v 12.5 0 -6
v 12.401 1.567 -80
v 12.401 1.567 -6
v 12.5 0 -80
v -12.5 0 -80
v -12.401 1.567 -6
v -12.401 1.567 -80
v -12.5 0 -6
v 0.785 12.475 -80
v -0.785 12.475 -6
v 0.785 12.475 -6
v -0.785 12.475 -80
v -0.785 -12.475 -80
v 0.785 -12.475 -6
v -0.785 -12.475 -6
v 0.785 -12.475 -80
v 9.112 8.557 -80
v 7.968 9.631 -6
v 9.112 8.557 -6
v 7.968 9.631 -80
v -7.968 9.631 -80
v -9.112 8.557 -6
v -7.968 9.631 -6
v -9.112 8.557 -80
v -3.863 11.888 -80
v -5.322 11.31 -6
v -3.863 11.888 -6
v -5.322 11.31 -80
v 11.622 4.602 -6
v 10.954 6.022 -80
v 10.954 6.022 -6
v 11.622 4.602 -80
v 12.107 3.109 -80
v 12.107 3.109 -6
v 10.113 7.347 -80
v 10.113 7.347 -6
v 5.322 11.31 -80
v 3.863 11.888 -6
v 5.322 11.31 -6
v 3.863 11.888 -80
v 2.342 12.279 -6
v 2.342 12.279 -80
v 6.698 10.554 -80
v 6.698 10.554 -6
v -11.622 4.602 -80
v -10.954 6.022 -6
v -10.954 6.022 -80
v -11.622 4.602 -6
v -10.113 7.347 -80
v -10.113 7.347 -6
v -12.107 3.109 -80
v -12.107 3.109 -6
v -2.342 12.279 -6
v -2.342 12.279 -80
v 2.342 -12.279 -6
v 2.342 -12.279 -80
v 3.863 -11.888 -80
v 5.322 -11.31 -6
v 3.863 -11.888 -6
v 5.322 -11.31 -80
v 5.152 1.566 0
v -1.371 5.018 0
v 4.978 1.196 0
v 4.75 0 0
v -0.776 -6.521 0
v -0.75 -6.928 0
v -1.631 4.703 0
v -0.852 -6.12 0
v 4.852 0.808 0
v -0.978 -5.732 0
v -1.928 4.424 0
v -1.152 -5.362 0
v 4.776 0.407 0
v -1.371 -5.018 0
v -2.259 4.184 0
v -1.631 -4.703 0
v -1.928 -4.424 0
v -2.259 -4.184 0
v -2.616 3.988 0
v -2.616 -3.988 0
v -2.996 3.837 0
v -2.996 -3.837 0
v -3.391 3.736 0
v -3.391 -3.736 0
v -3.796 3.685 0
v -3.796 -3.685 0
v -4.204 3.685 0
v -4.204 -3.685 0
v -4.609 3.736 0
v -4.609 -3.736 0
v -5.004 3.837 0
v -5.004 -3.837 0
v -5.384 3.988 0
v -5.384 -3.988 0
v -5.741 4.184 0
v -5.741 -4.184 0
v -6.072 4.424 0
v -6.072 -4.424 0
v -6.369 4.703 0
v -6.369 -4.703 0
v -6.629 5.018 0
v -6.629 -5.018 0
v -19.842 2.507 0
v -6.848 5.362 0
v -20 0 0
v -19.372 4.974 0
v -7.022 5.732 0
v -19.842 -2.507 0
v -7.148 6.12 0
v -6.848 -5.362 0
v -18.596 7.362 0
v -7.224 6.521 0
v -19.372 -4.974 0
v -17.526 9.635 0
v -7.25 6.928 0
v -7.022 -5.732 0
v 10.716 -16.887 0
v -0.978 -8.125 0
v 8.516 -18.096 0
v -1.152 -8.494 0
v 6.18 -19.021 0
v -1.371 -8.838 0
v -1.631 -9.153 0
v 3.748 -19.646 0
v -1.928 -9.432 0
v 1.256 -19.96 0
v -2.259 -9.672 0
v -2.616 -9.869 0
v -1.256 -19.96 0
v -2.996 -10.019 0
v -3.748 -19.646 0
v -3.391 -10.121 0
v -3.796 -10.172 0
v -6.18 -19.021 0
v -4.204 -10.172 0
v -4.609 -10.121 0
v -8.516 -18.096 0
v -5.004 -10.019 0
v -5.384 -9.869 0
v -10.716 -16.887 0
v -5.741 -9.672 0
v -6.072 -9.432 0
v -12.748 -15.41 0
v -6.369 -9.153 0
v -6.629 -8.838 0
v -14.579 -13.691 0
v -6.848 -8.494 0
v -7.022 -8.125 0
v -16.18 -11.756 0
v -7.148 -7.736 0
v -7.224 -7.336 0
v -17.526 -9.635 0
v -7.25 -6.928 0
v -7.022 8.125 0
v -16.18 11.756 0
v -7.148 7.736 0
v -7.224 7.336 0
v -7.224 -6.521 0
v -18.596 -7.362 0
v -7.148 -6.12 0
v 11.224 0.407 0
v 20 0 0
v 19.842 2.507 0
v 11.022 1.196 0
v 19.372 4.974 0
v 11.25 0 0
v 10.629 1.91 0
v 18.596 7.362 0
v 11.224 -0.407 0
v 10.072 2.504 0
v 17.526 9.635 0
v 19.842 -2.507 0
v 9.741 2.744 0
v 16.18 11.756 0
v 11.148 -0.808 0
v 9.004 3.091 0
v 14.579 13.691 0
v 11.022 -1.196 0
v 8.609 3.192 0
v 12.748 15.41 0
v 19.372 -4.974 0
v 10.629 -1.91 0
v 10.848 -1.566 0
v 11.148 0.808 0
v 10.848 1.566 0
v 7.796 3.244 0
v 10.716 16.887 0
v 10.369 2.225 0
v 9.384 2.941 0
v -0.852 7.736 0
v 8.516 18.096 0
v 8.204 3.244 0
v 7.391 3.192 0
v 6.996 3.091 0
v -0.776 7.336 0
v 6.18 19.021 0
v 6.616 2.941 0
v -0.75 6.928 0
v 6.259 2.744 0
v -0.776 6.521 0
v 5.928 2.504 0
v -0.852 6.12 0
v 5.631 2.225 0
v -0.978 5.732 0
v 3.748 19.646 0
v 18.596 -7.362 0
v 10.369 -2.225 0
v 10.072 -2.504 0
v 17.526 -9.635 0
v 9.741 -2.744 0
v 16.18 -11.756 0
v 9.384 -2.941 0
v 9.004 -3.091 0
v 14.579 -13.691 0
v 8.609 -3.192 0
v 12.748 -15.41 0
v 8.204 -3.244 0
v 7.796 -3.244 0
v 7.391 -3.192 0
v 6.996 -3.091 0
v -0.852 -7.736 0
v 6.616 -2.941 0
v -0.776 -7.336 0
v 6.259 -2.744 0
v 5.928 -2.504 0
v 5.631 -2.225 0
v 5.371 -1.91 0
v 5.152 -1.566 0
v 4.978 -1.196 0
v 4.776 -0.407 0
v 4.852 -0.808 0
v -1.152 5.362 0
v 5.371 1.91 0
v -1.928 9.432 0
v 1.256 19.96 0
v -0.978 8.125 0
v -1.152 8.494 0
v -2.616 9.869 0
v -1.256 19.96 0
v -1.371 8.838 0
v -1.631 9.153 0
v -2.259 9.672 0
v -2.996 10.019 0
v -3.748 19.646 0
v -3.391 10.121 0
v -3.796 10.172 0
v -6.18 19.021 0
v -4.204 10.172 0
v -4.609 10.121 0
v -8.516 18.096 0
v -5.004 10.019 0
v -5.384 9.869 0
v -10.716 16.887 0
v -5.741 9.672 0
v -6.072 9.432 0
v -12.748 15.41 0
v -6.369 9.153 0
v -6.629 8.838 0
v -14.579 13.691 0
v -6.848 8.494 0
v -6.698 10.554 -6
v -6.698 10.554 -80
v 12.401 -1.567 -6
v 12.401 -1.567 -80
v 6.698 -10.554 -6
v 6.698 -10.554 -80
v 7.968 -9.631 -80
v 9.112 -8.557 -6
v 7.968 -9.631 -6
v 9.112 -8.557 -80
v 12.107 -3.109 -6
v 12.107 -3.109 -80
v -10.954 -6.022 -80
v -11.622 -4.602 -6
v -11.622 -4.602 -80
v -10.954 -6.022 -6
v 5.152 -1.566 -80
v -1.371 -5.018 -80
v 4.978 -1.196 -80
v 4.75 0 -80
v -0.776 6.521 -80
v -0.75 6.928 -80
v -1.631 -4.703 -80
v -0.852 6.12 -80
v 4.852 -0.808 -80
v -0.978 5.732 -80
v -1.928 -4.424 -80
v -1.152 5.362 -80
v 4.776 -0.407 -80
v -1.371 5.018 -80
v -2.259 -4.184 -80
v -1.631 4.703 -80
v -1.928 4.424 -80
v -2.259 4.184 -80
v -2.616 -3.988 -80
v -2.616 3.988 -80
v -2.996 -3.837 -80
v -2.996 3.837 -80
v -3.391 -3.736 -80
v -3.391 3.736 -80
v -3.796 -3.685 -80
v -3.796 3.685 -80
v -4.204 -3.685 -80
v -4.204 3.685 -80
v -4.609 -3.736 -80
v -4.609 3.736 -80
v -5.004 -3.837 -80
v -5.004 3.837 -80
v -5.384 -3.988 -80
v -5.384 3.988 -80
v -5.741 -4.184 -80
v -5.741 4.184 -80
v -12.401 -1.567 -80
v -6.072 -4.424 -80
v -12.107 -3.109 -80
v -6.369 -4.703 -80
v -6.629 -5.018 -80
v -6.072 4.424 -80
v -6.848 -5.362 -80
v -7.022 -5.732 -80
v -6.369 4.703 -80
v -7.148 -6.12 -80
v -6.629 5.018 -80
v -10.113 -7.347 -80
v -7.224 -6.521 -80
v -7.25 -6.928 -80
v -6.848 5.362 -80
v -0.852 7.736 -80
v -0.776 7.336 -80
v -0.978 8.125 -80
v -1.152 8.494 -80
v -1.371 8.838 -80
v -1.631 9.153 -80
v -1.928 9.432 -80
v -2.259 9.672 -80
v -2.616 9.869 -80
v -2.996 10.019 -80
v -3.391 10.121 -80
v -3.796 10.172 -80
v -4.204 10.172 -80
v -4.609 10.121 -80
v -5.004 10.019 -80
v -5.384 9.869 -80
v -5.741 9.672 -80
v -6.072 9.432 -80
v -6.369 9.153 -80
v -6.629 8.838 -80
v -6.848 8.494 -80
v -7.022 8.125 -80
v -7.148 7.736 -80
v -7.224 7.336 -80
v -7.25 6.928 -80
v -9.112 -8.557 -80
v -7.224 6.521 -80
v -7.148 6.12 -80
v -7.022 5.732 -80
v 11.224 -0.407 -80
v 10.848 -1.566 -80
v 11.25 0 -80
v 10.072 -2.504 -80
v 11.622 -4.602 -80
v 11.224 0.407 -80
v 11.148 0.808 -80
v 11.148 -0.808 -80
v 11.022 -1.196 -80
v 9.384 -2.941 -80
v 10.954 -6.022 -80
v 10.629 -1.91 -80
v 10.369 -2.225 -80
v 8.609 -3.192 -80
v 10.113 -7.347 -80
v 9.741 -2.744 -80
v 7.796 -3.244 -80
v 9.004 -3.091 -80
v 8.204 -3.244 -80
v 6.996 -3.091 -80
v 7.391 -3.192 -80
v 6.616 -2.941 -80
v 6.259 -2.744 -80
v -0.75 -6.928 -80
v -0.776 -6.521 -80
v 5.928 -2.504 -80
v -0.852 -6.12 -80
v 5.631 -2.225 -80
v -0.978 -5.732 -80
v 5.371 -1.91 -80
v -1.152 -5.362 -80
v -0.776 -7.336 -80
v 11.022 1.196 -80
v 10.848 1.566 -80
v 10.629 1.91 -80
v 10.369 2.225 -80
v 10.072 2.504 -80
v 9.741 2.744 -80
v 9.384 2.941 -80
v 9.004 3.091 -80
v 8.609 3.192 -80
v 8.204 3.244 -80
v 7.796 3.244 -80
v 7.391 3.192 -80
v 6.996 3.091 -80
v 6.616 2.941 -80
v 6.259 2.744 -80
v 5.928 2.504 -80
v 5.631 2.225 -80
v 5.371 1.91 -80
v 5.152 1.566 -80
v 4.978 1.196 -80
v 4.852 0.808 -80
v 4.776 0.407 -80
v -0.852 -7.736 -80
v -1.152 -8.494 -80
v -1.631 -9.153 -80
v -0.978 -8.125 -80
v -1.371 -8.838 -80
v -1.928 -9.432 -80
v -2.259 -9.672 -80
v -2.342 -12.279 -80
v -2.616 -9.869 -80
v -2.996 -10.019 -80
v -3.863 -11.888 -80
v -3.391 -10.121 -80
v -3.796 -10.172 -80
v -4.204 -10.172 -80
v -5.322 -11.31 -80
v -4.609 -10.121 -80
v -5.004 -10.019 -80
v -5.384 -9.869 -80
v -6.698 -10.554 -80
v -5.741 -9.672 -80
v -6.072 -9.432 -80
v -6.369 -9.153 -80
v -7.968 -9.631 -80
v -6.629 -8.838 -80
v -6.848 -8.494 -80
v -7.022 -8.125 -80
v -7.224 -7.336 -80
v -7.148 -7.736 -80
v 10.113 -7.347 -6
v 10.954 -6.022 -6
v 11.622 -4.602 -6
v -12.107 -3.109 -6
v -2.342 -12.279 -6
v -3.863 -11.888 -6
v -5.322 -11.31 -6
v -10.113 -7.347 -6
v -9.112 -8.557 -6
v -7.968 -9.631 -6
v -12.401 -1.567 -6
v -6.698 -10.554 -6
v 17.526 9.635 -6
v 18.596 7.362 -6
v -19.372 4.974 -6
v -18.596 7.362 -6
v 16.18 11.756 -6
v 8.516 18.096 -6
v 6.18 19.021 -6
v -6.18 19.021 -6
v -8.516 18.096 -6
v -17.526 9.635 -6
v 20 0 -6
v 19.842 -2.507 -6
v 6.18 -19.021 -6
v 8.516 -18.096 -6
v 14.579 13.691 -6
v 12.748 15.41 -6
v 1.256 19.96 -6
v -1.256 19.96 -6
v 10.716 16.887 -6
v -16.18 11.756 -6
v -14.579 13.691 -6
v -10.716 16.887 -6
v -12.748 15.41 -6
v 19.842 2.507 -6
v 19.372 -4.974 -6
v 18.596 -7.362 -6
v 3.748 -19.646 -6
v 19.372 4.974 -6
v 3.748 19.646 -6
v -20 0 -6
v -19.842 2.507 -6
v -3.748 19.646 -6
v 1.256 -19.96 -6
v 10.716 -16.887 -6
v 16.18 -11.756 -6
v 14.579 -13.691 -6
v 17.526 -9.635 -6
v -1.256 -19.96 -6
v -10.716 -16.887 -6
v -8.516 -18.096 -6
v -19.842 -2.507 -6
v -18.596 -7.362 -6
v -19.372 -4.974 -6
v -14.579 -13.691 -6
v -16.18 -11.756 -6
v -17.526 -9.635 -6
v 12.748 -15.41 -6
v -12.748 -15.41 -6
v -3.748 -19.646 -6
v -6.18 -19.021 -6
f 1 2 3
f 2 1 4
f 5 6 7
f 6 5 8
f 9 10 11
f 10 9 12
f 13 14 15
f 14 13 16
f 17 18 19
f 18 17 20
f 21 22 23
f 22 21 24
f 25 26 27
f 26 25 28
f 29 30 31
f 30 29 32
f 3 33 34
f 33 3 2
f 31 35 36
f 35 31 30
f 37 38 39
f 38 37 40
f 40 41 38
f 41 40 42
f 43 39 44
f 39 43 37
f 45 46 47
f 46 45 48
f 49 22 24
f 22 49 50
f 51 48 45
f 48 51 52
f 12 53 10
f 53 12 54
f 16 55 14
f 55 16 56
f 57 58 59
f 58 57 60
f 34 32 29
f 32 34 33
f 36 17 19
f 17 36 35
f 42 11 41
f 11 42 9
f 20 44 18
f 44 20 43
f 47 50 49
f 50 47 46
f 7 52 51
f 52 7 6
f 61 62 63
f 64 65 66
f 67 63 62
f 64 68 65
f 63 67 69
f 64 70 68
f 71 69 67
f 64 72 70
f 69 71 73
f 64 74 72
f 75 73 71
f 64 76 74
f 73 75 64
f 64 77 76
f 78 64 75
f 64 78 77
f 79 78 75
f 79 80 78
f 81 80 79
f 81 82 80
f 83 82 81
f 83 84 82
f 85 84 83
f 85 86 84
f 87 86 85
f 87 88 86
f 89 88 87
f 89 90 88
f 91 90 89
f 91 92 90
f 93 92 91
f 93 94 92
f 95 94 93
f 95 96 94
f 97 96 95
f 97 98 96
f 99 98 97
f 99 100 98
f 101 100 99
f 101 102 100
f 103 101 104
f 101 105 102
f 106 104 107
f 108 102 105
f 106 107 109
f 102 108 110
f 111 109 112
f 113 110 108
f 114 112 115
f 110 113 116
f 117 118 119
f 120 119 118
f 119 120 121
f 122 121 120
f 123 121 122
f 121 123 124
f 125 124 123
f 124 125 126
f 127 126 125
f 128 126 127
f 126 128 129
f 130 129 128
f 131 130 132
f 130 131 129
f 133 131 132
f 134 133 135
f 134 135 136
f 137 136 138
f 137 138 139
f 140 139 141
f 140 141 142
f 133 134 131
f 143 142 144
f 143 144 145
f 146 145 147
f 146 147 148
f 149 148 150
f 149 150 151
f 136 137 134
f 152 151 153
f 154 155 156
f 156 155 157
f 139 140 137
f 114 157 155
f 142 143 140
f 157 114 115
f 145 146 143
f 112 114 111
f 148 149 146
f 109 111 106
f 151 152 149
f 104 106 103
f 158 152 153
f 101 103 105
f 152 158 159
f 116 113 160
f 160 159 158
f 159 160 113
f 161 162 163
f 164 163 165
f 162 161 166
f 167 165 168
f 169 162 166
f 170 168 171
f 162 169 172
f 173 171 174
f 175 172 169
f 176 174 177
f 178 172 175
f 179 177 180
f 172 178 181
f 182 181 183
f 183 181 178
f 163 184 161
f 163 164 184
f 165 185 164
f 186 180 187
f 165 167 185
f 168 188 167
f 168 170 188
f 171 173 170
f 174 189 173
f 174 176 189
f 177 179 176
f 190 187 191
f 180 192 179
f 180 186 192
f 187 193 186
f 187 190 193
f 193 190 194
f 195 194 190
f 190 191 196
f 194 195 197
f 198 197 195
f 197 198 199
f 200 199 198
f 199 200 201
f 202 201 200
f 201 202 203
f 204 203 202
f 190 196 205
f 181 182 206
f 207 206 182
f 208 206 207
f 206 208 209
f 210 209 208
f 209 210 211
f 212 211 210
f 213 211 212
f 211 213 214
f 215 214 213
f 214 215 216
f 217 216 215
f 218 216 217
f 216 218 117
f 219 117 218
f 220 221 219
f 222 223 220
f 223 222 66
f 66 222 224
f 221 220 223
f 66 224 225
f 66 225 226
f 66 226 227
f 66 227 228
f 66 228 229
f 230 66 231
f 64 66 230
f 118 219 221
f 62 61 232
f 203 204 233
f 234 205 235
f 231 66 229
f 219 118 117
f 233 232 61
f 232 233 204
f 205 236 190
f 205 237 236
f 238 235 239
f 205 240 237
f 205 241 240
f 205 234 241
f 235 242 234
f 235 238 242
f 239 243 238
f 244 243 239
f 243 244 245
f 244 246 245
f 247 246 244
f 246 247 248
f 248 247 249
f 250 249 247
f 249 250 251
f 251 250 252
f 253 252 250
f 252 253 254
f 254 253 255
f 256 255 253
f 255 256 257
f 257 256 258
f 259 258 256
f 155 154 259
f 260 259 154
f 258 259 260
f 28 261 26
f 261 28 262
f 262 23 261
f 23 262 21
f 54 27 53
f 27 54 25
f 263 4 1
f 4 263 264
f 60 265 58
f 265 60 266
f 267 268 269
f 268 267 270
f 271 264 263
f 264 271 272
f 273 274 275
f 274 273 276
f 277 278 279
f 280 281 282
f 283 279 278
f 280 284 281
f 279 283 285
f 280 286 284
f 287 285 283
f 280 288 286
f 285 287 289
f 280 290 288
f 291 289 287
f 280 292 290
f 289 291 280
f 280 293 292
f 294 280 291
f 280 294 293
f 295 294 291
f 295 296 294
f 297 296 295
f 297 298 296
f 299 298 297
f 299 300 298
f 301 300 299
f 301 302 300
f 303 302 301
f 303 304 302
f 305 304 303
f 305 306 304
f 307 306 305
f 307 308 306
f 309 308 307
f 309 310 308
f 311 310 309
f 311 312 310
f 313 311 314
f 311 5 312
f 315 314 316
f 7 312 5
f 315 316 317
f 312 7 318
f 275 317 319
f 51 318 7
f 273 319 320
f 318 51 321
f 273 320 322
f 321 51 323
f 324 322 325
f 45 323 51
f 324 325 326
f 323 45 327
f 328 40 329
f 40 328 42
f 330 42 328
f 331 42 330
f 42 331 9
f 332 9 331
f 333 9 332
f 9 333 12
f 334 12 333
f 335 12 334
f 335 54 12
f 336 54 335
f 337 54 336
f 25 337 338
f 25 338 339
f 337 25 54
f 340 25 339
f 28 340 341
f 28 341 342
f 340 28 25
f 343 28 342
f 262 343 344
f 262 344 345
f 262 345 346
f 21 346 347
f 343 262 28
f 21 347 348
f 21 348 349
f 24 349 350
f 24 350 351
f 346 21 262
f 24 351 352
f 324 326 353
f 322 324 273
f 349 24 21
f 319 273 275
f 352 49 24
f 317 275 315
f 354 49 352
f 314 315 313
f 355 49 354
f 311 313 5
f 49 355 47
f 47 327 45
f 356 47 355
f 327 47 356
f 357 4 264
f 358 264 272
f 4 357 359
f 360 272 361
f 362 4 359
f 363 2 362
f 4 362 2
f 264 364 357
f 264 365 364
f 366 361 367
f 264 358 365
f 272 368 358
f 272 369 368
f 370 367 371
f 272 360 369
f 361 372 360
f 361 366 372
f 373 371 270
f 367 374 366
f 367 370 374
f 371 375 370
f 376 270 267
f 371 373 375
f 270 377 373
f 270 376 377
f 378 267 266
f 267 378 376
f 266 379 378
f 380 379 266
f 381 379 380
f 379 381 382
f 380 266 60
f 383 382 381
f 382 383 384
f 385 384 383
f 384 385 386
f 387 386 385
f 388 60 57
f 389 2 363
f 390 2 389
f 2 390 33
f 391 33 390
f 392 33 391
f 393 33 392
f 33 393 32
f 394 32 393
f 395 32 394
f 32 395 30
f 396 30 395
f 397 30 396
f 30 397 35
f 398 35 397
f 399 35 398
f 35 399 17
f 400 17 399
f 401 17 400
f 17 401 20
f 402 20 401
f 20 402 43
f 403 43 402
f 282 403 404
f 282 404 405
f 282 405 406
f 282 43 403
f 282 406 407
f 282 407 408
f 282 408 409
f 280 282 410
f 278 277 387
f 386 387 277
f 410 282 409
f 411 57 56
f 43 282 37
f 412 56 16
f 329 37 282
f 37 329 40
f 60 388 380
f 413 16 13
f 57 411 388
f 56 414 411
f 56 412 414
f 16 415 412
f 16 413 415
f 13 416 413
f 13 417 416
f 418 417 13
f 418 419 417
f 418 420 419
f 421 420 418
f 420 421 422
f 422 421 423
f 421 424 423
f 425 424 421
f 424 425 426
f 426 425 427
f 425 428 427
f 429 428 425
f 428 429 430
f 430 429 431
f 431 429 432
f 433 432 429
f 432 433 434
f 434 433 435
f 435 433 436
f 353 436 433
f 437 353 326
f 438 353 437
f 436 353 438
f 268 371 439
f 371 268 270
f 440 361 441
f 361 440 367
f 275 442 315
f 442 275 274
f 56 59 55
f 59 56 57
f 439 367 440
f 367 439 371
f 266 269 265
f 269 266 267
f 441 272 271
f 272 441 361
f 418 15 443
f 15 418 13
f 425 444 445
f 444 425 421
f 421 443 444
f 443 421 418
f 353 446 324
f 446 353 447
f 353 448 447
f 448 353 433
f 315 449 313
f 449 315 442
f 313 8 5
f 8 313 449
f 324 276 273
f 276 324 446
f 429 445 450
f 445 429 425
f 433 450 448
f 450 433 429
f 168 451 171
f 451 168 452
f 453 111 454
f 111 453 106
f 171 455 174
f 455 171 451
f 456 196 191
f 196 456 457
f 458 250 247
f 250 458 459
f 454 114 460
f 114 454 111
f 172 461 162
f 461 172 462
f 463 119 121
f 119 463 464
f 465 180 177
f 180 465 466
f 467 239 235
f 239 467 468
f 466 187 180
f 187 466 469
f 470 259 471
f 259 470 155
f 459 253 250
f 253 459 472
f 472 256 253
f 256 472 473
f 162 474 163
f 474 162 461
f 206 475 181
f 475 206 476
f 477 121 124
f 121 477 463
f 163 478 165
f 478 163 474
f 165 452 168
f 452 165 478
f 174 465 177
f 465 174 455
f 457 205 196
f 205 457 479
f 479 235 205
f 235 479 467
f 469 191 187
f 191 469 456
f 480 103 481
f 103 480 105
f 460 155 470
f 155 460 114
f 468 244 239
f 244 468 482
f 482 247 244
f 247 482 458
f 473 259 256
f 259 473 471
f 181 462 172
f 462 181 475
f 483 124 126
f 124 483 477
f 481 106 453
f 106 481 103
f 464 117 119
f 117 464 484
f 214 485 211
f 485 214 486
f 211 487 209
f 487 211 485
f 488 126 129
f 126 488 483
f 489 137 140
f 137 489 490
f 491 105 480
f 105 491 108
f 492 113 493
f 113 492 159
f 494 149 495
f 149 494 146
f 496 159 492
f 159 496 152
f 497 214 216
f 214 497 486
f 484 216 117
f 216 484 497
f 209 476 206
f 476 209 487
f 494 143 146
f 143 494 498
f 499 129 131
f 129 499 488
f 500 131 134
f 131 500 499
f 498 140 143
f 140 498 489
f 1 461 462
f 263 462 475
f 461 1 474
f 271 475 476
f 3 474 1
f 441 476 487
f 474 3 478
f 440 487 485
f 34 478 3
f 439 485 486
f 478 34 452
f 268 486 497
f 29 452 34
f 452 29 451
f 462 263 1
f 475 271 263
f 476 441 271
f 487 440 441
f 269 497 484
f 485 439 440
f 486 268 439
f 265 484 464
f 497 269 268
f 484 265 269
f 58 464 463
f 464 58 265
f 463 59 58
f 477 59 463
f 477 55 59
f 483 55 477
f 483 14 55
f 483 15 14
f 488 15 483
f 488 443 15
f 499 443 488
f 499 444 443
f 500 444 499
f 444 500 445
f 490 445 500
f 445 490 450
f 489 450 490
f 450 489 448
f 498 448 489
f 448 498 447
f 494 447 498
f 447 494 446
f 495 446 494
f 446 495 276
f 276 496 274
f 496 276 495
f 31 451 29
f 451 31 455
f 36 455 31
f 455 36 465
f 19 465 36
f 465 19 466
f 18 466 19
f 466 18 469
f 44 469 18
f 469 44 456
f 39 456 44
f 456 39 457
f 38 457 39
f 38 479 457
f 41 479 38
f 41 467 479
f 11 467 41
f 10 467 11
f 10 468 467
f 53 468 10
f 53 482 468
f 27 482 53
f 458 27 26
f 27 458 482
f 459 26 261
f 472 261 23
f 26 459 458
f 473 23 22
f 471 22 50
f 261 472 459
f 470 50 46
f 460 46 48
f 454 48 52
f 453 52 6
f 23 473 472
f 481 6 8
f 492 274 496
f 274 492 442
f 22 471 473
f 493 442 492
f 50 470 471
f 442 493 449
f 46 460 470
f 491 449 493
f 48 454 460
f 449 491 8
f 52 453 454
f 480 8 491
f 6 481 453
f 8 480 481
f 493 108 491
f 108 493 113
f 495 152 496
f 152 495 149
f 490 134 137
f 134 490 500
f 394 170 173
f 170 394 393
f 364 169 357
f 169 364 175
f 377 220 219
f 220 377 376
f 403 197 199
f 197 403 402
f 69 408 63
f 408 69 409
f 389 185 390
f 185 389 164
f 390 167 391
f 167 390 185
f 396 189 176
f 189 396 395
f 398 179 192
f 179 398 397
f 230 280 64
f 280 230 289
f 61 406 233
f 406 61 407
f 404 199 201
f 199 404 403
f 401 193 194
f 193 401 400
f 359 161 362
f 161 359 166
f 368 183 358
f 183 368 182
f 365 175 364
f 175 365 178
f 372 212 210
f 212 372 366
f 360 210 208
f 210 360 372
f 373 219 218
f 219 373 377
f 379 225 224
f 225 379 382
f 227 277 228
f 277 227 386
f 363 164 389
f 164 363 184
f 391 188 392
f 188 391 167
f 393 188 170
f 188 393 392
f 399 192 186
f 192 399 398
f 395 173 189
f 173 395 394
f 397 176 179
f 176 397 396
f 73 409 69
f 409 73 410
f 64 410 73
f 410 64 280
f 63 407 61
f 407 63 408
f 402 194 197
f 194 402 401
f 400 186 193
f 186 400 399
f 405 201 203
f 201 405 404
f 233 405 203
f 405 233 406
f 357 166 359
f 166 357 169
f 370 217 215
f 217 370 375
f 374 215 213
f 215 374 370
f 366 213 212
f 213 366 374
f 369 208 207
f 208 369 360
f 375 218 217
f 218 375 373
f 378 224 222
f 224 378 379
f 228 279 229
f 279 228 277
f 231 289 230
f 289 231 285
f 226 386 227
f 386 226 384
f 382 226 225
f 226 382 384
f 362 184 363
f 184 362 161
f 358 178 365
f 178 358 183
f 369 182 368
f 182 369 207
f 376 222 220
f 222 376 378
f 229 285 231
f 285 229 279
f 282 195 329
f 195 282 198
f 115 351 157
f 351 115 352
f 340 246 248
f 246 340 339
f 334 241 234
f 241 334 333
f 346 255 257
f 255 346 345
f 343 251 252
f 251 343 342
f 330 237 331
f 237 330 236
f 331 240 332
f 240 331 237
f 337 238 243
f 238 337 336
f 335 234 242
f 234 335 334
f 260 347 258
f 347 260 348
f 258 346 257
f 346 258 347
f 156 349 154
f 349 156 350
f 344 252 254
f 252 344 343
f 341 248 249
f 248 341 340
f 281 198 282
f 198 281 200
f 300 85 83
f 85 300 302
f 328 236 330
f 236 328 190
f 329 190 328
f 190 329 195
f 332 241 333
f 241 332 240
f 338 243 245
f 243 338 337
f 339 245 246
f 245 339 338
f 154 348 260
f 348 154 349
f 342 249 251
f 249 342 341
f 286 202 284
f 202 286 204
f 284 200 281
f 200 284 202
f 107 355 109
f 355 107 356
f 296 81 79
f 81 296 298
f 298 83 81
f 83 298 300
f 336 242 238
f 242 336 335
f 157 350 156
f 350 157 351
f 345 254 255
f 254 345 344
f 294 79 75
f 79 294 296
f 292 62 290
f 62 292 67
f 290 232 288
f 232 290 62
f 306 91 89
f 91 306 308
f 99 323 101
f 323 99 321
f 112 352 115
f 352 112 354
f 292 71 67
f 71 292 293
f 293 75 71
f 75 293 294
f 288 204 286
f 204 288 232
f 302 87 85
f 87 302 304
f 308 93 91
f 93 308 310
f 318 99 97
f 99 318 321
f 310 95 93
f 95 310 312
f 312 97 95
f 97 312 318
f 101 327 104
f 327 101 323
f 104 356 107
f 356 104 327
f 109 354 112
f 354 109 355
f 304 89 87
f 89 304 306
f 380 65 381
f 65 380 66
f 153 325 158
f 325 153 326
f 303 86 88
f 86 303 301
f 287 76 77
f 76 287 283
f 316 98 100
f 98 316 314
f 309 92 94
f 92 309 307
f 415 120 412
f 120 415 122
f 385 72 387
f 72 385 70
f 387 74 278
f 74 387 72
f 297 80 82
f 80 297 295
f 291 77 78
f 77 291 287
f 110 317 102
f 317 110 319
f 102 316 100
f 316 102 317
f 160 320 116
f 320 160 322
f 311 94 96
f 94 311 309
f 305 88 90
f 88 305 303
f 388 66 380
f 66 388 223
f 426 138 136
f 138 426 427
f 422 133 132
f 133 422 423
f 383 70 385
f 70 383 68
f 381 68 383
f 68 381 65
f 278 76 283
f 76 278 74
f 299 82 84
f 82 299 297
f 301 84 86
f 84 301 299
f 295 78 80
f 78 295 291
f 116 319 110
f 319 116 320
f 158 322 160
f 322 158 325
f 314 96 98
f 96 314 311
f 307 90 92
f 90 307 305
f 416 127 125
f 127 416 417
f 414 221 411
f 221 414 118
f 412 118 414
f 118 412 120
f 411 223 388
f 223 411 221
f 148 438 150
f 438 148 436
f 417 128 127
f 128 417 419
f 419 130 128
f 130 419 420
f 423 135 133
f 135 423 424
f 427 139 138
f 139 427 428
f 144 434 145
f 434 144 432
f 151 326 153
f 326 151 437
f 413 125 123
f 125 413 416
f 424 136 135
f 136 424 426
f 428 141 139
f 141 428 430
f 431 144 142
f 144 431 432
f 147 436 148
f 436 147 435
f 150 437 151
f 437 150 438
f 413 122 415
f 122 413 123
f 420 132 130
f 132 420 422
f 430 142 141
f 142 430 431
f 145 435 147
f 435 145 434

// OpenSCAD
$fn = 50;


difference() {
	union() {
		translate(v = [0, 0, -80.0000000000]) {
			cylinder(h = 80, r = 12.5000000000);
		}
		translate(v = [0, 0, -6.0000000000]) {
			cylinder(h = 6, r = 20.0000000000);
		}
	}
	union() {
		#translate(v = [8.0000000000, 0.0000000000, -80]) {
			cylinder(h = 80, r = 3.2500000000);
		}
		#translate(v = [-4.0000000000, 6.9282032303, -80]) {
			cylinder(h = 80, r = 3.2500000000);
		}
		#translate(v = [-4.0000000000, -6.9282032303, -80]) {
			cylinder(h = 80, r = 3.2500000000);
		}
	}
}
